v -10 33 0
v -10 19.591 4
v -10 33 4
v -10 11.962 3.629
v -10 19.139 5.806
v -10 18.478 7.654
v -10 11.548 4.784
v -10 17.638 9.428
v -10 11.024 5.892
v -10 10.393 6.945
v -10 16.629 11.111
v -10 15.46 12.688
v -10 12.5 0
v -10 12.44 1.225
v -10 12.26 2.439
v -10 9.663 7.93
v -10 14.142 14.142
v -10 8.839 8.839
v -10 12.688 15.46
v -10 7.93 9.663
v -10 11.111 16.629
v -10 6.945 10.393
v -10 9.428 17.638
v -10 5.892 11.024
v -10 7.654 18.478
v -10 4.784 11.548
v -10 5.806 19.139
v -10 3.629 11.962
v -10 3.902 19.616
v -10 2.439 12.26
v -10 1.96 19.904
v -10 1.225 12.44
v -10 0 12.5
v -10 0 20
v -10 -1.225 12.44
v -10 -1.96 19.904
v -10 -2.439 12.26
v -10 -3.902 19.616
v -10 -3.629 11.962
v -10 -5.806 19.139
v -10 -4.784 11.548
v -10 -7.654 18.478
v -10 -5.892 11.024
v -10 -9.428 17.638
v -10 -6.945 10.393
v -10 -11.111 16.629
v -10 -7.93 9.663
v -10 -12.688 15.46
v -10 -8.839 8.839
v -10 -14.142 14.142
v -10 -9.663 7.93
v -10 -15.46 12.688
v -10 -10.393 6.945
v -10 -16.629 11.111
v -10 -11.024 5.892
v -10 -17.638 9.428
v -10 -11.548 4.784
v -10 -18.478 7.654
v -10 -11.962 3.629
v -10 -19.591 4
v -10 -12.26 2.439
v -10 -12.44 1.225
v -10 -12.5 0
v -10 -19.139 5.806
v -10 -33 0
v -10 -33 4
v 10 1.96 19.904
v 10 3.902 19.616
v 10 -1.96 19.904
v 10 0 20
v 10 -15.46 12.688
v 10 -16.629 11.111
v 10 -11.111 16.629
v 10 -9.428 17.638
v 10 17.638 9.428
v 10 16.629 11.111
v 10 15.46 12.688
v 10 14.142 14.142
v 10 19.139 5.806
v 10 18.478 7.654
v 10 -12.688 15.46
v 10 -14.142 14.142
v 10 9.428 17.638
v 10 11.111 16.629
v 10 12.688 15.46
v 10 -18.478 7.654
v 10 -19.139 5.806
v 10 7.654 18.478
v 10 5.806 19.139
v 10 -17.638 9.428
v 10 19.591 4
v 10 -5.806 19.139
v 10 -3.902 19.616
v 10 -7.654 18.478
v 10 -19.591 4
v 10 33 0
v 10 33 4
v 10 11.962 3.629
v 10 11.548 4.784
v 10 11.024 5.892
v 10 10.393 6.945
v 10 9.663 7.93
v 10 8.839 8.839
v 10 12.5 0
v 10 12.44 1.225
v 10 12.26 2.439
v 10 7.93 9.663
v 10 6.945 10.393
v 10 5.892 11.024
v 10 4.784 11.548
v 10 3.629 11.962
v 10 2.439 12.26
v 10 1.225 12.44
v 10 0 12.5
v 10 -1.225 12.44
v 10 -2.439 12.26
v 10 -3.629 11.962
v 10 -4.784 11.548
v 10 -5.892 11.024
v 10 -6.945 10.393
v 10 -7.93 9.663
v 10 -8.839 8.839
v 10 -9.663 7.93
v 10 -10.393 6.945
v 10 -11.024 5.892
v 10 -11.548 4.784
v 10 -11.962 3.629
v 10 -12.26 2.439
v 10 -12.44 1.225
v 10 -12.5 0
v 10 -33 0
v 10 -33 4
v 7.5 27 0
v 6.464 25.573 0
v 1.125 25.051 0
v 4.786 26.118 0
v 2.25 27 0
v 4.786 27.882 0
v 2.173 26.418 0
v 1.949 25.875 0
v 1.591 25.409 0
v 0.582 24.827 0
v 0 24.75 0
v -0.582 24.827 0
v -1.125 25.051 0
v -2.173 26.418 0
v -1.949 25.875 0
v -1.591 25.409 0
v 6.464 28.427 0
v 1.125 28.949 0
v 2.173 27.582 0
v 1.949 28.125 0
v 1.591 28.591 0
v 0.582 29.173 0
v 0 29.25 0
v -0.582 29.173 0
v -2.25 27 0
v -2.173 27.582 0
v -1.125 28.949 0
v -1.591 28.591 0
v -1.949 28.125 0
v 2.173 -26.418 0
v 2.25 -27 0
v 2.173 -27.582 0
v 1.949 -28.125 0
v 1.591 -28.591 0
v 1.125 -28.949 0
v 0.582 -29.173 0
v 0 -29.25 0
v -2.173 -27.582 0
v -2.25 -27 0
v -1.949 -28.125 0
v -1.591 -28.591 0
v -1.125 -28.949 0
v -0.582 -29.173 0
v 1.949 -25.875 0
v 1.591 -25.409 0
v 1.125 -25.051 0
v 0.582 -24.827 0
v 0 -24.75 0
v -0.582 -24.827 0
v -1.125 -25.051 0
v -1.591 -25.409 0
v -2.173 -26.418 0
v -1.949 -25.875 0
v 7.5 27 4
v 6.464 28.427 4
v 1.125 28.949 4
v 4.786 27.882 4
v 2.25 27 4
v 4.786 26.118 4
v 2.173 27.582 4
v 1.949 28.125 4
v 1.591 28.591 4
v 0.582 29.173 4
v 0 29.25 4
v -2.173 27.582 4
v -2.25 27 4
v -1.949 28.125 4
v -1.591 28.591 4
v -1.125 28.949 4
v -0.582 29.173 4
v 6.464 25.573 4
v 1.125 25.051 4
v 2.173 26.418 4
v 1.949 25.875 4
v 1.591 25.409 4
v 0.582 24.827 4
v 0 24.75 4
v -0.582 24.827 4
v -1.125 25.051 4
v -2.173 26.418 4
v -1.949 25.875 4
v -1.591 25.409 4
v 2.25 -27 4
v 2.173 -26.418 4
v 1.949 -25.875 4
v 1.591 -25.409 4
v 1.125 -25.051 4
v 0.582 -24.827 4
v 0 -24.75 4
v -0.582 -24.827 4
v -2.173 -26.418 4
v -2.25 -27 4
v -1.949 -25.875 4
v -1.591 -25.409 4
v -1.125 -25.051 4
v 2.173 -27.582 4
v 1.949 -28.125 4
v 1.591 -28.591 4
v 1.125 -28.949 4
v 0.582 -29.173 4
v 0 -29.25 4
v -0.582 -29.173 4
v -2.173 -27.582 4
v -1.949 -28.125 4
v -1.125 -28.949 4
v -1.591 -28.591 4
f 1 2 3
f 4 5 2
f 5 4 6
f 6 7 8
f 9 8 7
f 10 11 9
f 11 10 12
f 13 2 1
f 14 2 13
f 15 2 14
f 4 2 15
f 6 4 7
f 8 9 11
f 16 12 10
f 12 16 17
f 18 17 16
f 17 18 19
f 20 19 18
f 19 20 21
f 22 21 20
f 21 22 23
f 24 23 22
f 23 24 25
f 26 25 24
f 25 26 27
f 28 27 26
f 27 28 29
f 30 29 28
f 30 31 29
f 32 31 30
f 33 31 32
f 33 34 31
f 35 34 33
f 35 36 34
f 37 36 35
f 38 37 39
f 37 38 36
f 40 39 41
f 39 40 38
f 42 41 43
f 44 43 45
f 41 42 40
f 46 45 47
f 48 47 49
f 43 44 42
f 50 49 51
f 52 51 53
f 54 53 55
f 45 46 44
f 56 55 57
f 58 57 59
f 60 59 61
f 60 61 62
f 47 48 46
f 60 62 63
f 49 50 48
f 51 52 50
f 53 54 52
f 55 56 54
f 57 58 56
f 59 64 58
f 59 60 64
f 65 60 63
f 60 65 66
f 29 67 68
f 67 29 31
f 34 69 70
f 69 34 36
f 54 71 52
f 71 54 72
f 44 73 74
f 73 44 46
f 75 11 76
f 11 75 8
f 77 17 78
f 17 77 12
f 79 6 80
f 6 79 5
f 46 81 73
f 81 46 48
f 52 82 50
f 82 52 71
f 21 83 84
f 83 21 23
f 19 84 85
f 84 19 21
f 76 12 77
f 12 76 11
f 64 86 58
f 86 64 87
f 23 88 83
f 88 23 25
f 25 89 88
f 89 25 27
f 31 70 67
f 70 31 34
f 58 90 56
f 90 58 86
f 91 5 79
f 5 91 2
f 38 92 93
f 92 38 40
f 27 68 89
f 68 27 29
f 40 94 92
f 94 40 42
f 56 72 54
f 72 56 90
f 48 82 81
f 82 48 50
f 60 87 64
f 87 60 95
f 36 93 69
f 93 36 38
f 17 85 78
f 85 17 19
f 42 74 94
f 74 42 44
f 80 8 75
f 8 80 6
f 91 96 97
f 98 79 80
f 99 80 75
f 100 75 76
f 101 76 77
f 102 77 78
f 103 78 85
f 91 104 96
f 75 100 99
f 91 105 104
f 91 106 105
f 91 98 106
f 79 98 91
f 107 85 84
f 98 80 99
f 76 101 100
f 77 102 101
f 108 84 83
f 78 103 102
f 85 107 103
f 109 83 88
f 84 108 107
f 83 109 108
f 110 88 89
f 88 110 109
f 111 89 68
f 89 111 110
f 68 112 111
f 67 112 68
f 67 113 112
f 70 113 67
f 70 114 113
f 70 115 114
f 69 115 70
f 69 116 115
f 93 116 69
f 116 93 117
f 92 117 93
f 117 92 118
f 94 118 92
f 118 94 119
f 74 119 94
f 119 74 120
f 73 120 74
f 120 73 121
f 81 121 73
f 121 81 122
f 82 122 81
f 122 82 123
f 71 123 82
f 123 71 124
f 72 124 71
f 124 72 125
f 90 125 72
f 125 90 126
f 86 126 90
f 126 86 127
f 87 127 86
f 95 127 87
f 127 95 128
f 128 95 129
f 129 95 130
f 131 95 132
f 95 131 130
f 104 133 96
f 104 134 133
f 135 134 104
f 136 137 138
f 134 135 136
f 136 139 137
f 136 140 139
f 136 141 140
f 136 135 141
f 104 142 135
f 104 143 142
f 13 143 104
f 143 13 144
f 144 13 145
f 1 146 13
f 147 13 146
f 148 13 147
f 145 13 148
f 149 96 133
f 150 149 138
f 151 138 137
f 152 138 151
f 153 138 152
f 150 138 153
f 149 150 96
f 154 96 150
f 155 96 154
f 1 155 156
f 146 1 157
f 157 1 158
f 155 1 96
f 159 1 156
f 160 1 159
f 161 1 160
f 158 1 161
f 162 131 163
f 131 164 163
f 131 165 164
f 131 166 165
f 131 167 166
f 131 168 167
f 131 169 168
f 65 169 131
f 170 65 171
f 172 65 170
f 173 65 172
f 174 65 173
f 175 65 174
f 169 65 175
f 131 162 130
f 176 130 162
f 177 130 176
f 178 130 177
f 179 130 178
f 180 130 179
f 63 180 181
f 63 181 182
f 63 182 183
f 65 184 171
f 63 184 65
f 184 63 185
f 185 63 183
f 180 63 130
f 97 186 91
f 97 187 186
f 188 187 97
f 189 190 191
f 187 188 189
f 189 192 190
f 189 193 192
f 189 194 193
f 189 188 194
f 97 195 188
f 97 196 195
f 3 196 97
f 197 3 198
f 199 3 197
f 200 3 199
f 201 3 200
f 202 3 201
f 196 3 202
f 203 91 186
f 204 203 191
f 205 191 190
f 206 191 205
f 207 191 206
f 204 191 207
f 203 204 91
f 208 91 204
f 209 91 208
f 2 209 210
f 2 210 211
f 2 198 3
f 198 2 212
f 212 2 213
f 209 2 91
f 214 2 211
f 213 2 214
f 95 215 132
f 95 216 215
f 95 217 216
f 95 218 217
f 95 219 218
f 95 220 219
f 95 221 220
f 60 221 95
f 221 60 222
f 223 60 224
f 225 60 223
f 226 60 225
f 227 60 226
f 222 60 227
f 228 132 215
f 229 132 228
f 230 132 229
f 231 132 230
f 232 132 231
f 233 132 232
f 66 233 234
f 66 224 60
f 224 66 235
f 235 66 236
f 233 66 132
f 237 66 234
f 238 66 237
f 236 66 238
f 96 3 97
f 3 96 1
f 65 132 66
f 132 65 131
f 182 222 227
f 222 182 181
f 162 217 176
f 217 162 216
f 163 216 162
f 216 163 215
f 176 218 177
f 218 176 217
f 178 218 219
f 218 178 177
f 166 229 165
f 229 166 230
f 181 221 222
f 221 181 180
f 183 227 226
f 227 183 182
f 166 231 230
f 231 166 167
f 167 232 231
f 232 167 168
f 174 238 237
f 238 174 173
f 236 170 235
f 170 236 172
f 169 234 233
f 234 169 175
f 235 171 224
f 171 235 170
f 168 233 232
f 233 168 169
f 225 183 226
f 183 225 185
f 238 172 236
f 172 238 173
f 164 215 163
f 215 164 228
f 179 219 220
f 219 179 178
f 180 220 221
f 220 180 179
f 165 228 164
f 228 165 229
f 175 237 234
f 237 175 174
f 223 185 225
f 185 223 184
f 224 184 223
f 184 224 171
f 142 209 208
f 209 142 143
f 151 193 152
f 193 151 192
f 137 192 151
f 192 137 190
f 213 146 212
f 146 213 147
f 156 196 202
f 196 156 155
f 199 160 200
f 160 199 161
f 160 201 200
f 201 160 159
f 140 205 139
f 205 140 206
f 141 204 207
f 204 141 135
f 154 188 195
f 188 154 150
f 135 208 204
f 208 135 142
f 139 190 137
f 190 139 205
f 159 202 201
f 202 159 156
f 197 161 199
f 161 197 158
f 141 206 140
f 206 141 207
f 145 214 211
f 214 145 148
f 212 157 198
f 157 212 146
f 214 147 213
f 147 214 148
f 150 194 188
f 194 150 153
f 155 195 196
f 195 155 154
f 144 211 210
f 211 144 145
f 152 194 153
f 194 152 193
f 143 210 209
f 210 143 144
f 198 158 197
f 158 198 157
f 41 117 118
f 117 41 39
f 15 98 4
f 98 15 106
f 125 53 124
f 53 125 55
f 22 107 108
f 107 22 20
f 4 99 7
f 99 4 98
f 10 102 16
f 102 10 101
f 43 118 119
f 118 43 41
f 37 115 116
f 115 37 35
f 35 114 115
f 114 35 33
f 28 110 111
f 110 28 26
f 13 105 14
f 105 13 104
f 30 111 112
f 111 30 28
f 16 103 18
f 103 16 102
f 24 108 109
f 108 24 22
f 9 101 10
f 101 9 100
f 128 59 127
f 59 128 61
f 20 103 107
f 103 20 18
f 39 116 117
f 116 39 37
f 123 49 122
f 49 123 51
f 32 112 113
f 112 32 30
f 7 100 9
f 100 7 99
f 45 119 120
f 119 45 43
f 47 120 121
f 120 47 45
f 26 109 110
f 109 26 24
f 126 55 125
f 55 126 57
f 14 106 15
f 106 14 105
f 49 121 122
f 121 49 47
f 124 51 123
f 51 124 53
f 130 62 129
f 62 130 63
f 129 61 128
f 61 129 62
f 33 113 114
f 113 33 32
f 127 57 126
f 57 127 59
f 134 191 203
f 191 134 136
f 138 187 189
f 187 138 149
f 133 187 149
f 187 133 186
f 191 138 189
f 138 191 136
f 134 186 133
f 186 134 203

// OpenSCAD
// Half of a pipe clamp, with OpenSCAD's default resolution left on one hole.
// Known answers, checked by tests/test_mesh_files.cpp:
//   the saddle: r 12.5 inside ($fn 64), r 20 outside ($fn 64), about the x axis,
//     from x = -10 to 10, cut at z = 0 (only z >= 0 kept)
//   two ear holes r 2.25 ($fn 24), on z, at (0, +-27)
//   one default-resolution hole r 1.5 (no $fn: $fa 12, $fs 2 gives 5 sides),
//     on z, at (6, 27)
difference() {
  union() {
    intersection() {
      rotate([0, 90, 0]) translate([0, 0, -10]) cylinder(r = 20, h = 20, $fn = 64);
      translate([-10, -20, 0]) cube([20, 40, 20]);
    }
    translate([-10, -33, 0]) cube([20, 66, 4]);
  }
  rotate([0, 90, 0]) translate([0, 0, -11]) cylinder(r = 12.5, h = 22, $fn = 64);
  for (y = [-27, 27]) translate([0, y, -1]) cylinder(r = 2.25, h = 6, $fn = 24);
  translate([6, 27, -1]) cylinder(r = 1.5, h = 6);
}
